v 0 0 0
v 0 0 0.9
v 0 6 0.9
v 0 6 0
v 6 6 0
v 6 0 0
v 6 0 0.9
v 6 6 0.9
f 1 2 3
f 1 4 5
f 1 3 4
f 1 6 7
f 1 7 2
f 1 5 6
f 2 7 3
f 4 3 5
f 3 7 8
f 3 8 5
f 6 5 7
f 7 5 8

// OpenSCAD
/* Warning, this is a very basic generator with a lot of approximation 
input data : [VQFN, ZWX, 6x6x0.9mm, 48, , C, C04-00531C]
generated by com.zoubworld.electronics.cad.model3d.Basic
Date : Sun Feb 15 10:50:48 CET 2026
*/

//body
color("black")
translate([0,0,0])
cube([6.0,6.0,0.9], center=false);
